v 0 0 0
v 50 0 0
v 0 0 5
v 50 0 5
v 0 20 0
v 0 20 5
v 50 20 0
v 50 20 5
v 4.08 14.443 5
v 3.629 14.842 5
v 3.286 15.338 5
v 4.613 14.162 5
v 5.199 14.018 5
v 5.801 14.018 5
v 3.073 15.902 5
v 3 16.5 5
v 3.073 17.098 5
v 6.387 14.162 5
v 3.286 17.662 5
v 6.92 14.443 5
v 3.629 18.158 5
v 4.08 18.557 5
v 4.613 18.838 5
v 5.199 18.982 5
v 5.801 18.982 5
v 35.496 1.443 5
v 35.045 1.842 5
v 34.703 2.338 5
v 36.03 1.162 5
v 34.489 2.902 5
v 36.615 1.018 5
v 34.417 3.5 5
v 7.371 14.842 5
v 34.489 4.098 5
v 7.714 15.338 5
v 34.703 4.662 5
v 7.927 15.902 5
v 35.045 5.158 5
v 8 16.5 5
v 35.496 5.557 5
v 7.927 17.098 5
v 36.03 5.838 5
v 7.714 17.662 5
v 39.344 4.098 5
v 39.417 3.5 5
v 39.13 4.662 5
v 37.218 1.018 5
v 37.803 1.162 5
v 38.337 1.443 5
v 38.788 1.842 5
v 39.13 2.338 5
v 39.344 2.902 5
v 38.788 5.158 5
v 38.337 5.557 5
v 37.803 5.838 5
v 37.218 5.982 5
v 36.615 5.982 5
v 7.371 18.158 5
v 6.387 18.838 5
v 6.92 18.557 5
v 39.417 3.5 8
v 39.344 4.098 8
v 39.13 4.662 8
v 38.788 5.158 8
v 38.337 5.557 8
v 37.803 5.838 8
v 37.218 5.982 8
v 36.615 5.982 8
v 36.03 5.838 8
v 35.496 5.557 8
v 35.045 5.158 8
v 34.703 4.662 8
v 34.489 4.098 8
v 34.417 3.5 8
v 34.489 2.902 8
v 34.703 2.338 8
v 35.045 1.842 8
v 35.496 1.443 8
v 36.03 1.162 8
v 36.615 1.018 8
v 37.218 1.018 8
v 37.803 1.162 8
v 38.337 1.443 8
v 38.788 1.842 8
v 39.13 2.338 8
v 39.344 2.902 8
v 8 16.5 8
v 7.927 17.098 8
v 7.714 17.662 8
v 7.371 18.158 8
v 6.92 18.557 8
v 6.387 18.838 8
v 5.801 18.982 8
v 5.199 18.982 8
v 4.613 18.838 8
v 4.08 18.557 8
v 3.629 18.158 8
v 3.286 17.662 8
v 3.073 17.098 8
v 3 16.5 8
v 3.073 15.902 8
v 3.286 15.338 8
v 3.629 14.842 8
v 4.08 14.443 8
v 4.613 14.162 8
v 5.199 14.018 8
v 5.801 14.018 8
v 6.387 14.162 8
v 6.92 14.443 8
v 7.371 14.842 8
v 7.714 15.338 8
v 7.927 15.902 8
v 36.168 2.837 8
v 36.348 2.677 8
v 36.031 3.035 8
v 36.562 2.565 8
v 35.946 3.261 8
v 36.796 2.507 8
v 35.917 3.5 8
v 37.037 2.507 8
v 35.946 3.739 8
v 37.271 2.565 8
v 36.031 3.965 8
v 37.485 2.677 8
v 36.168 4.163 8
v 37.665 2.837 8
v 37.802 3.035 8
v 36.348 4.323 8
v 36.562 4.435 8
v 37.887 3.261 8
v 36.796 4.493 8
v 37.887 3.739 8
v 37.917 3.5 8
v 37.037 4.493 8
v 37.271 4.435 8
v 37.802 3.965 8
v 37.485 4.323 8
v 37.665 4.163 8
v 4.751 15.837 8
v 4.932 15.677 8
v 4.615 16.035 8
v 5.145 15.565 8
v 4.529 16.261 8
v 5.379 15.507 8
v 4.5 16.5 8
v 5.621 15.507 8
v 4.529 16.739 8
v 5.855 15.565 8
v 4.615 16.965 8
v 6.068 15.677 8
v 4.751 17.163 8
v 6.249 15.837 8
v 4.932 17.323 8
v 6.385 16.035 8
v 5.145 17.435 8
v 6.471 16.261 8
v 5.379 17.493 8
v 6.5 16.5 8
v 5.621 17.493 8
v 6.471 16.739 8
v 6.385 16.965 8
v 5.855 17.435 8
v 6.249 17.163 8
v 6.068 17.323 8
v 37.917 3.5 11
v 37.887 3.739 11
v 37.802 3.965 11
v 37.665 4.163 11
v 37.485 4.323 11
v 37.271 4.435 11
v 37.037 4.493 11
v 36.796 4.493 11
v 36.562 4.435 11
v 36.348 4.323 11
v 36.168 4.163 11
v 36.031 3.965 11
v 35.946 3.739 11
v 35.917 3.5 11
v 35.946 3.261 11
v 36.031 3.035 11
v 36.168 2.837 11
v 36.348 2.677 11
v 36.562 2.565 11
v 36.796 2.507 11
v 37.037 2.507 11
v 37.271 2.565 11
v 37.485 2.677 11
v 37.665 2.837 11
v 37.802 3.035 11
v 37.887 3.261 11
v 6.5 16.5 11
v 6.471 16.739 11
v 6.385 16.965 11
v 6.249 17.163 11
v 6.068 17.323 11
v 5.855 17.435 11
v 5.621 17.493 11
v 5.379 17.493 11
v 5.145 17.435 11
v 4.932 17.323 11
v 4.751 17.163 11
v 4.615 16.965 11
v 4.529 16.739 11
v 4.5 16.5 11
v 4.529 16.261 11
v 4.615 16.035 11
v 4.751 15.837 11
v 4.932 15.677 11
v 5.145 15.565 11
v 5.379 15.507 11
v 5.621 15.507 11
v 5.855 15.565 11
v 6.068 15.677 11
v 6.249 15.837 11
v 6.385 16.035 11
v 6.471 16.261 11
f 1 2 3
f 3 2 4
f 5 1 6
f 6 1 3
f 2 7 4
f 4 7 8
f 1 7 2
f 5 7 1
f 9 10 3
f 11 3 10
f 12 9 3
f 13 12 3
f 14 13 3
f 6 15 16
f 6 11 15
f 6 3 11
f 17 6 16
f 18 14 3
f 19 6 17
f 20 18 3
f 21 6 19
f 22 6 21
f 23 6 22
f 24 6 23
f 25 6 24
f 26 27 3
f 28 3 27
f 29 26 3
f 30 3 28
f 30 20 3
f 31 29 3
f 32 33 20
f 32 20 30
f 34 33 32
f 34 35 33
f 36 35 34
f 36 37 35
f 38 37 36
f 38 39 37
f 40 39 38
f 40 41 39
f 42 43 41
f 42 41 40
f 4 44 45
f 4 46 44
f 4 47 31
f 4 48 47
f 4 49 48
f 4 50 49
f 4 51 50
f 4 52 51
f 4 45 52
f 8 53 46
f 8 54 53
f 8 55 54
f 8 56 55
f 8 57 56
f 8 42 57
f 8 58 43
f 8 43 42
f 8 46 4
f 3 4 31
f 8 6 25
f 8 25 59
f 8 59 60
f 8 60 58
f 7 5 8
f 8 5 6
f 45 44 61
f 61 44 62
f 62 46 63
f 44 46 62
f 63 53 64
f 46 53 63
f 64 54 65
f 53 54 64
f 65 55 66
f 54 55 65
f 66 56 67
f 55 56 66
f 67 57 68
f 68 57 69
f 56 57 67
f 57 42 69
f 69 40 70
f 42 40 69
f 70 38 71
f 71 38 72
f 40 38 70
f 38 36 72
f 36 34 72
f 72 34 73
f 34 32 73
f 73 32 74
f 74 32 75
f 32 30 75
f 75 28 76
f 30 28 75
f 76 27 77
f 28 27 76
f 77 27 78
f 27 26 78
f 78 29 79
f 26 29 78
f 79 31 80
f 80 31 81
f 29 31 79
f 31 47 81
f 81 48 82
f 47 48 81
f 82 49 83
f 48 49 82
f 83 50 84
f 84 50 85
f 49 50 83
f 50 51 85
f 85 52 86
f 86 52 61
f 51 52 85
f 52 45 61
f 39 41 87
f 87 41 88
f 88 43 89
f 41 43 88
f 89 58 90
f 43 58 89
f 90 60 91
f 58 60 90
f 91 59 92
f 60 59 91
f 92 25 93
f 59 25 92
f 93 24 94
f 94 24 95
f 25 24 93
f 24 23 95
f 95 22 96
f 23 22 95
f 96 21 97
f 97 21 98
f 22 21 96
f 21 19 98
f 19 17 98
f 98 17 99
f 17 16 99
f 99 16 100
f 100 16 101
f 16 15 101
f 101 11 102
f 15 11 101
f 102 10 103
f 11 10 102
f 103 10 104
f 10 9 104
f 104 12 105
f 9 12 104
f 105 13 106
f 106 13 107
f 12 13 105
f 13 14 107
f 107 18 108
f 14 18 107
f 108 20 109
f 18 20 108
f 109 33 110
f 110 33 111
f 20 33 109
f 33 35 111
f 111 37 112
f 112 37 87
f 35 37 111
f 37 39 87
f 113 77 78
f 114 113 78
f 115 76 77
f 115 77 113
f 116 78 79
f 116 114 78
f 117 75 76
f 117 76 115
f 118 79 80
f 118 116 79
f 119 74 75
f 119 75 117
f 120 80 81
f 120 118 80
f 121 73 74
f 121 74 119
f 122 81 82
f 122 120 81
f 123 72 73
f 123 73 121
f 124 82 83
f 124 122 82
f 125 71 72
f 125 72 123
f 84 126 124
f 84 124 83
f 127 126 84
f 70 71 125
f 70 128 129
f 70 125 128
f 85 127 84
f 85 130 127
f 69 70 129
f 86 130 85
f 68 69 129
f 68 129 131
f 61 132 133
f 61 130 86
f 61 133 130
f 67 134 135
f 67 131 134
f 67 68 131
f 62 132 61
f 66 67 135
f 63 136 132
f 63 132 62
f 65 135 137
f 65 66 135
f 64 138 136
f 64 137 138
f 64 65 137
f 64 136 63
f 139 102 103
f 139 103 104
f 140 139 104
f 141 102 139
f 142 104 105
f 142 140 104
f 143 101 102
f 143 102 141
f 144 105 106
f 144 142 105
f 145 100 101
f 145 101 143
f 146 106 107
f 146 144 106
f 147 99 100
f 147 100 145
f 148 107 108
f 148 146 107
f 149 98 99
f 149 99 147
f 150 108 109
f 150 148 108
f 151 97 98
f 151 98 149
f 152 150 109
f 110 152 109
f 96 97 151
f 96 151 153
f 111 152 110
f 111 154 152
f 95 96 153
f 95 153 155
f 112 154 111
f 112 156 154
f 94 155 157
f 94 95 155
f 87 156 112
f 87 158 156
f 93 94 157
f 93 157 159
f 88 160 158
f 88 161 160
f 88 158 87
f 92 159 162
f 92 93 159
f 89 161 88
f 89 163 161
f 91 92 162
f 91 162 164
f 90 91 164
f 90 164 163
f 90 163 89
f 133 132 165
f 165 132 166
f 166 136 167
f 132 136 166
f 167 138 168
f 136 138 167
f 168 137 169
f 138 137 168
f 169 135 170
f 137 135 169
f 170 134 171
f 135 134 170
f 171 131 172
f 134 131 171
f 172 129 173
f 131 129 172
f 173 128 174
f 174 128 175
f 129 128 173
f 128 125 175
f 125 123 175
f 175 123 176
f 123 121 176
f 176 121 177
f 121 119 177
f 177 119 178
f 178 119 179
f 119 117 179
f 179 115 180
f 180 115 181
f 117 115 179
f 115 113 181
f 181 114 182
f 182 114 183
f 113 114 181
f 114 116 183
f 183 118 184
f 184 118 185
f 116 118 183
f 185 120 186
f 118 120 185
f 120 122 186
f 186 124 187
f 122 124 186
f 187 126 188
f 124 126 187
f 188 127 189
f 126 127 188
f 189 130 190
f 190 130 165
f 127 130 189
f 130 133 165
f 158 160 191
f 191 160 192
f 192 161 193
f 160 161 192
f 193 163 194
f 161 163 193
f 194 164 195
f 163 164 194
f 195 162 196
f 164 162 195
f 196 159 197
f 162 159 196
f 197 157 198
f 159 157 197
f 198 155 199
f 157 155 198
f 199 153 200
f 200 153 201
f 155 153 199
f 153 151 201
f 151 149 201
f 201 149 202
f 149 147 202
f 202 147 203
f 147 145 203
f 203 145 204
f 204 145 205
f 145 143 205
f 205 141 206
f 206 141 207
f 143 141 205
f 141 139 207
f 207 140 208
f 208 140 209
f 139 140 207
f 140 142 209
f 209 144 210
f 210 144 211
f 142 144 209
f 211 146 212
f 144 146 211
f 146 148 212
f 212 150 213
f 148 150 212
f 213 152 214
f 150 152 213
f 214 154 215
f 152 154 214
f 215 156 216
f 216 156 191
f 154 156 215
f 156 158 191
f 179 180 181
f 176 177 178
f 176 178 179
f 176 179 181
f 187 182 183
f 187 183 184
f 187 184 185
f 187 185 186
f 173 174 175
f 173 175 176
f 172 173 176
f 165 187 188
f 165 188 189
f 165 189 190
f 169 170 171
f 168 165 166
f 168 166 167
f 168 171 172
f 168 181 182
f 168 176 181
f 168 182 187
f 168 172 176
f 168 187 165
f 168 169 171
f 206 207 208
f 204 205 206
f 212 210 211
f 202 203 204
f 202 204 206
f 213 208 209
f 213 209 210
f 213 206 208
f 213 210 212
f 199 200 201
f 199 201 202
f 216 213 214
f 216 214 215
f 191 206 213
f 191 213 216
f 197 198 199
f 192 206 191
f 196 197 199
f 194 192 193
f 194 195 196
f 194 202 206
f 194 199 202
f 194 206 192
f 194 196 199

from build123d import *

# Parameters (mm, degrees)
SKETCH_W     = 50
SKETCH_H     = 20
PAD_DEPTH    = 5
SKETCH001_R  = 2.5
PAD001_DEPTH = 3
SKETCH002_R  = 1
PAD002_DEPTH = 3


with BuildPart() as part:
    # Sketch → Pad (new body)
    with BuildSketch(Plane.XY):
        with Locations((25, 10)):
            Rectangle(SKETCH_W, SKETCH_H)
    extrude(amount=PAD_DEPTH)

    # Sketch001 (on Face6 of Pad) → Pad001 (join)
    with BuildSketch(Plane.XY.offset(5)):
        with Locations((5.5, 16.5)):
            Circle(SKETCH001_R)
        with Locations((36.916556, 3.5)):
            Circle(SKETCH001_R)
    extrude(amount=PAD001_DEPTH)

    # Sketch002 (on Face10 of Pad001) → Pad002 (join)
    with BuildSketch(Plane.XY.offset(8)):
        with Locations((5.5, 16.5)):
            Circle(SKETCH002_R)
        with Locations((36.916556, 3.5)):
            Circle(SKETCH002_R)
    extrude(amount=PAD002_DEPTH)


solid = part.part
